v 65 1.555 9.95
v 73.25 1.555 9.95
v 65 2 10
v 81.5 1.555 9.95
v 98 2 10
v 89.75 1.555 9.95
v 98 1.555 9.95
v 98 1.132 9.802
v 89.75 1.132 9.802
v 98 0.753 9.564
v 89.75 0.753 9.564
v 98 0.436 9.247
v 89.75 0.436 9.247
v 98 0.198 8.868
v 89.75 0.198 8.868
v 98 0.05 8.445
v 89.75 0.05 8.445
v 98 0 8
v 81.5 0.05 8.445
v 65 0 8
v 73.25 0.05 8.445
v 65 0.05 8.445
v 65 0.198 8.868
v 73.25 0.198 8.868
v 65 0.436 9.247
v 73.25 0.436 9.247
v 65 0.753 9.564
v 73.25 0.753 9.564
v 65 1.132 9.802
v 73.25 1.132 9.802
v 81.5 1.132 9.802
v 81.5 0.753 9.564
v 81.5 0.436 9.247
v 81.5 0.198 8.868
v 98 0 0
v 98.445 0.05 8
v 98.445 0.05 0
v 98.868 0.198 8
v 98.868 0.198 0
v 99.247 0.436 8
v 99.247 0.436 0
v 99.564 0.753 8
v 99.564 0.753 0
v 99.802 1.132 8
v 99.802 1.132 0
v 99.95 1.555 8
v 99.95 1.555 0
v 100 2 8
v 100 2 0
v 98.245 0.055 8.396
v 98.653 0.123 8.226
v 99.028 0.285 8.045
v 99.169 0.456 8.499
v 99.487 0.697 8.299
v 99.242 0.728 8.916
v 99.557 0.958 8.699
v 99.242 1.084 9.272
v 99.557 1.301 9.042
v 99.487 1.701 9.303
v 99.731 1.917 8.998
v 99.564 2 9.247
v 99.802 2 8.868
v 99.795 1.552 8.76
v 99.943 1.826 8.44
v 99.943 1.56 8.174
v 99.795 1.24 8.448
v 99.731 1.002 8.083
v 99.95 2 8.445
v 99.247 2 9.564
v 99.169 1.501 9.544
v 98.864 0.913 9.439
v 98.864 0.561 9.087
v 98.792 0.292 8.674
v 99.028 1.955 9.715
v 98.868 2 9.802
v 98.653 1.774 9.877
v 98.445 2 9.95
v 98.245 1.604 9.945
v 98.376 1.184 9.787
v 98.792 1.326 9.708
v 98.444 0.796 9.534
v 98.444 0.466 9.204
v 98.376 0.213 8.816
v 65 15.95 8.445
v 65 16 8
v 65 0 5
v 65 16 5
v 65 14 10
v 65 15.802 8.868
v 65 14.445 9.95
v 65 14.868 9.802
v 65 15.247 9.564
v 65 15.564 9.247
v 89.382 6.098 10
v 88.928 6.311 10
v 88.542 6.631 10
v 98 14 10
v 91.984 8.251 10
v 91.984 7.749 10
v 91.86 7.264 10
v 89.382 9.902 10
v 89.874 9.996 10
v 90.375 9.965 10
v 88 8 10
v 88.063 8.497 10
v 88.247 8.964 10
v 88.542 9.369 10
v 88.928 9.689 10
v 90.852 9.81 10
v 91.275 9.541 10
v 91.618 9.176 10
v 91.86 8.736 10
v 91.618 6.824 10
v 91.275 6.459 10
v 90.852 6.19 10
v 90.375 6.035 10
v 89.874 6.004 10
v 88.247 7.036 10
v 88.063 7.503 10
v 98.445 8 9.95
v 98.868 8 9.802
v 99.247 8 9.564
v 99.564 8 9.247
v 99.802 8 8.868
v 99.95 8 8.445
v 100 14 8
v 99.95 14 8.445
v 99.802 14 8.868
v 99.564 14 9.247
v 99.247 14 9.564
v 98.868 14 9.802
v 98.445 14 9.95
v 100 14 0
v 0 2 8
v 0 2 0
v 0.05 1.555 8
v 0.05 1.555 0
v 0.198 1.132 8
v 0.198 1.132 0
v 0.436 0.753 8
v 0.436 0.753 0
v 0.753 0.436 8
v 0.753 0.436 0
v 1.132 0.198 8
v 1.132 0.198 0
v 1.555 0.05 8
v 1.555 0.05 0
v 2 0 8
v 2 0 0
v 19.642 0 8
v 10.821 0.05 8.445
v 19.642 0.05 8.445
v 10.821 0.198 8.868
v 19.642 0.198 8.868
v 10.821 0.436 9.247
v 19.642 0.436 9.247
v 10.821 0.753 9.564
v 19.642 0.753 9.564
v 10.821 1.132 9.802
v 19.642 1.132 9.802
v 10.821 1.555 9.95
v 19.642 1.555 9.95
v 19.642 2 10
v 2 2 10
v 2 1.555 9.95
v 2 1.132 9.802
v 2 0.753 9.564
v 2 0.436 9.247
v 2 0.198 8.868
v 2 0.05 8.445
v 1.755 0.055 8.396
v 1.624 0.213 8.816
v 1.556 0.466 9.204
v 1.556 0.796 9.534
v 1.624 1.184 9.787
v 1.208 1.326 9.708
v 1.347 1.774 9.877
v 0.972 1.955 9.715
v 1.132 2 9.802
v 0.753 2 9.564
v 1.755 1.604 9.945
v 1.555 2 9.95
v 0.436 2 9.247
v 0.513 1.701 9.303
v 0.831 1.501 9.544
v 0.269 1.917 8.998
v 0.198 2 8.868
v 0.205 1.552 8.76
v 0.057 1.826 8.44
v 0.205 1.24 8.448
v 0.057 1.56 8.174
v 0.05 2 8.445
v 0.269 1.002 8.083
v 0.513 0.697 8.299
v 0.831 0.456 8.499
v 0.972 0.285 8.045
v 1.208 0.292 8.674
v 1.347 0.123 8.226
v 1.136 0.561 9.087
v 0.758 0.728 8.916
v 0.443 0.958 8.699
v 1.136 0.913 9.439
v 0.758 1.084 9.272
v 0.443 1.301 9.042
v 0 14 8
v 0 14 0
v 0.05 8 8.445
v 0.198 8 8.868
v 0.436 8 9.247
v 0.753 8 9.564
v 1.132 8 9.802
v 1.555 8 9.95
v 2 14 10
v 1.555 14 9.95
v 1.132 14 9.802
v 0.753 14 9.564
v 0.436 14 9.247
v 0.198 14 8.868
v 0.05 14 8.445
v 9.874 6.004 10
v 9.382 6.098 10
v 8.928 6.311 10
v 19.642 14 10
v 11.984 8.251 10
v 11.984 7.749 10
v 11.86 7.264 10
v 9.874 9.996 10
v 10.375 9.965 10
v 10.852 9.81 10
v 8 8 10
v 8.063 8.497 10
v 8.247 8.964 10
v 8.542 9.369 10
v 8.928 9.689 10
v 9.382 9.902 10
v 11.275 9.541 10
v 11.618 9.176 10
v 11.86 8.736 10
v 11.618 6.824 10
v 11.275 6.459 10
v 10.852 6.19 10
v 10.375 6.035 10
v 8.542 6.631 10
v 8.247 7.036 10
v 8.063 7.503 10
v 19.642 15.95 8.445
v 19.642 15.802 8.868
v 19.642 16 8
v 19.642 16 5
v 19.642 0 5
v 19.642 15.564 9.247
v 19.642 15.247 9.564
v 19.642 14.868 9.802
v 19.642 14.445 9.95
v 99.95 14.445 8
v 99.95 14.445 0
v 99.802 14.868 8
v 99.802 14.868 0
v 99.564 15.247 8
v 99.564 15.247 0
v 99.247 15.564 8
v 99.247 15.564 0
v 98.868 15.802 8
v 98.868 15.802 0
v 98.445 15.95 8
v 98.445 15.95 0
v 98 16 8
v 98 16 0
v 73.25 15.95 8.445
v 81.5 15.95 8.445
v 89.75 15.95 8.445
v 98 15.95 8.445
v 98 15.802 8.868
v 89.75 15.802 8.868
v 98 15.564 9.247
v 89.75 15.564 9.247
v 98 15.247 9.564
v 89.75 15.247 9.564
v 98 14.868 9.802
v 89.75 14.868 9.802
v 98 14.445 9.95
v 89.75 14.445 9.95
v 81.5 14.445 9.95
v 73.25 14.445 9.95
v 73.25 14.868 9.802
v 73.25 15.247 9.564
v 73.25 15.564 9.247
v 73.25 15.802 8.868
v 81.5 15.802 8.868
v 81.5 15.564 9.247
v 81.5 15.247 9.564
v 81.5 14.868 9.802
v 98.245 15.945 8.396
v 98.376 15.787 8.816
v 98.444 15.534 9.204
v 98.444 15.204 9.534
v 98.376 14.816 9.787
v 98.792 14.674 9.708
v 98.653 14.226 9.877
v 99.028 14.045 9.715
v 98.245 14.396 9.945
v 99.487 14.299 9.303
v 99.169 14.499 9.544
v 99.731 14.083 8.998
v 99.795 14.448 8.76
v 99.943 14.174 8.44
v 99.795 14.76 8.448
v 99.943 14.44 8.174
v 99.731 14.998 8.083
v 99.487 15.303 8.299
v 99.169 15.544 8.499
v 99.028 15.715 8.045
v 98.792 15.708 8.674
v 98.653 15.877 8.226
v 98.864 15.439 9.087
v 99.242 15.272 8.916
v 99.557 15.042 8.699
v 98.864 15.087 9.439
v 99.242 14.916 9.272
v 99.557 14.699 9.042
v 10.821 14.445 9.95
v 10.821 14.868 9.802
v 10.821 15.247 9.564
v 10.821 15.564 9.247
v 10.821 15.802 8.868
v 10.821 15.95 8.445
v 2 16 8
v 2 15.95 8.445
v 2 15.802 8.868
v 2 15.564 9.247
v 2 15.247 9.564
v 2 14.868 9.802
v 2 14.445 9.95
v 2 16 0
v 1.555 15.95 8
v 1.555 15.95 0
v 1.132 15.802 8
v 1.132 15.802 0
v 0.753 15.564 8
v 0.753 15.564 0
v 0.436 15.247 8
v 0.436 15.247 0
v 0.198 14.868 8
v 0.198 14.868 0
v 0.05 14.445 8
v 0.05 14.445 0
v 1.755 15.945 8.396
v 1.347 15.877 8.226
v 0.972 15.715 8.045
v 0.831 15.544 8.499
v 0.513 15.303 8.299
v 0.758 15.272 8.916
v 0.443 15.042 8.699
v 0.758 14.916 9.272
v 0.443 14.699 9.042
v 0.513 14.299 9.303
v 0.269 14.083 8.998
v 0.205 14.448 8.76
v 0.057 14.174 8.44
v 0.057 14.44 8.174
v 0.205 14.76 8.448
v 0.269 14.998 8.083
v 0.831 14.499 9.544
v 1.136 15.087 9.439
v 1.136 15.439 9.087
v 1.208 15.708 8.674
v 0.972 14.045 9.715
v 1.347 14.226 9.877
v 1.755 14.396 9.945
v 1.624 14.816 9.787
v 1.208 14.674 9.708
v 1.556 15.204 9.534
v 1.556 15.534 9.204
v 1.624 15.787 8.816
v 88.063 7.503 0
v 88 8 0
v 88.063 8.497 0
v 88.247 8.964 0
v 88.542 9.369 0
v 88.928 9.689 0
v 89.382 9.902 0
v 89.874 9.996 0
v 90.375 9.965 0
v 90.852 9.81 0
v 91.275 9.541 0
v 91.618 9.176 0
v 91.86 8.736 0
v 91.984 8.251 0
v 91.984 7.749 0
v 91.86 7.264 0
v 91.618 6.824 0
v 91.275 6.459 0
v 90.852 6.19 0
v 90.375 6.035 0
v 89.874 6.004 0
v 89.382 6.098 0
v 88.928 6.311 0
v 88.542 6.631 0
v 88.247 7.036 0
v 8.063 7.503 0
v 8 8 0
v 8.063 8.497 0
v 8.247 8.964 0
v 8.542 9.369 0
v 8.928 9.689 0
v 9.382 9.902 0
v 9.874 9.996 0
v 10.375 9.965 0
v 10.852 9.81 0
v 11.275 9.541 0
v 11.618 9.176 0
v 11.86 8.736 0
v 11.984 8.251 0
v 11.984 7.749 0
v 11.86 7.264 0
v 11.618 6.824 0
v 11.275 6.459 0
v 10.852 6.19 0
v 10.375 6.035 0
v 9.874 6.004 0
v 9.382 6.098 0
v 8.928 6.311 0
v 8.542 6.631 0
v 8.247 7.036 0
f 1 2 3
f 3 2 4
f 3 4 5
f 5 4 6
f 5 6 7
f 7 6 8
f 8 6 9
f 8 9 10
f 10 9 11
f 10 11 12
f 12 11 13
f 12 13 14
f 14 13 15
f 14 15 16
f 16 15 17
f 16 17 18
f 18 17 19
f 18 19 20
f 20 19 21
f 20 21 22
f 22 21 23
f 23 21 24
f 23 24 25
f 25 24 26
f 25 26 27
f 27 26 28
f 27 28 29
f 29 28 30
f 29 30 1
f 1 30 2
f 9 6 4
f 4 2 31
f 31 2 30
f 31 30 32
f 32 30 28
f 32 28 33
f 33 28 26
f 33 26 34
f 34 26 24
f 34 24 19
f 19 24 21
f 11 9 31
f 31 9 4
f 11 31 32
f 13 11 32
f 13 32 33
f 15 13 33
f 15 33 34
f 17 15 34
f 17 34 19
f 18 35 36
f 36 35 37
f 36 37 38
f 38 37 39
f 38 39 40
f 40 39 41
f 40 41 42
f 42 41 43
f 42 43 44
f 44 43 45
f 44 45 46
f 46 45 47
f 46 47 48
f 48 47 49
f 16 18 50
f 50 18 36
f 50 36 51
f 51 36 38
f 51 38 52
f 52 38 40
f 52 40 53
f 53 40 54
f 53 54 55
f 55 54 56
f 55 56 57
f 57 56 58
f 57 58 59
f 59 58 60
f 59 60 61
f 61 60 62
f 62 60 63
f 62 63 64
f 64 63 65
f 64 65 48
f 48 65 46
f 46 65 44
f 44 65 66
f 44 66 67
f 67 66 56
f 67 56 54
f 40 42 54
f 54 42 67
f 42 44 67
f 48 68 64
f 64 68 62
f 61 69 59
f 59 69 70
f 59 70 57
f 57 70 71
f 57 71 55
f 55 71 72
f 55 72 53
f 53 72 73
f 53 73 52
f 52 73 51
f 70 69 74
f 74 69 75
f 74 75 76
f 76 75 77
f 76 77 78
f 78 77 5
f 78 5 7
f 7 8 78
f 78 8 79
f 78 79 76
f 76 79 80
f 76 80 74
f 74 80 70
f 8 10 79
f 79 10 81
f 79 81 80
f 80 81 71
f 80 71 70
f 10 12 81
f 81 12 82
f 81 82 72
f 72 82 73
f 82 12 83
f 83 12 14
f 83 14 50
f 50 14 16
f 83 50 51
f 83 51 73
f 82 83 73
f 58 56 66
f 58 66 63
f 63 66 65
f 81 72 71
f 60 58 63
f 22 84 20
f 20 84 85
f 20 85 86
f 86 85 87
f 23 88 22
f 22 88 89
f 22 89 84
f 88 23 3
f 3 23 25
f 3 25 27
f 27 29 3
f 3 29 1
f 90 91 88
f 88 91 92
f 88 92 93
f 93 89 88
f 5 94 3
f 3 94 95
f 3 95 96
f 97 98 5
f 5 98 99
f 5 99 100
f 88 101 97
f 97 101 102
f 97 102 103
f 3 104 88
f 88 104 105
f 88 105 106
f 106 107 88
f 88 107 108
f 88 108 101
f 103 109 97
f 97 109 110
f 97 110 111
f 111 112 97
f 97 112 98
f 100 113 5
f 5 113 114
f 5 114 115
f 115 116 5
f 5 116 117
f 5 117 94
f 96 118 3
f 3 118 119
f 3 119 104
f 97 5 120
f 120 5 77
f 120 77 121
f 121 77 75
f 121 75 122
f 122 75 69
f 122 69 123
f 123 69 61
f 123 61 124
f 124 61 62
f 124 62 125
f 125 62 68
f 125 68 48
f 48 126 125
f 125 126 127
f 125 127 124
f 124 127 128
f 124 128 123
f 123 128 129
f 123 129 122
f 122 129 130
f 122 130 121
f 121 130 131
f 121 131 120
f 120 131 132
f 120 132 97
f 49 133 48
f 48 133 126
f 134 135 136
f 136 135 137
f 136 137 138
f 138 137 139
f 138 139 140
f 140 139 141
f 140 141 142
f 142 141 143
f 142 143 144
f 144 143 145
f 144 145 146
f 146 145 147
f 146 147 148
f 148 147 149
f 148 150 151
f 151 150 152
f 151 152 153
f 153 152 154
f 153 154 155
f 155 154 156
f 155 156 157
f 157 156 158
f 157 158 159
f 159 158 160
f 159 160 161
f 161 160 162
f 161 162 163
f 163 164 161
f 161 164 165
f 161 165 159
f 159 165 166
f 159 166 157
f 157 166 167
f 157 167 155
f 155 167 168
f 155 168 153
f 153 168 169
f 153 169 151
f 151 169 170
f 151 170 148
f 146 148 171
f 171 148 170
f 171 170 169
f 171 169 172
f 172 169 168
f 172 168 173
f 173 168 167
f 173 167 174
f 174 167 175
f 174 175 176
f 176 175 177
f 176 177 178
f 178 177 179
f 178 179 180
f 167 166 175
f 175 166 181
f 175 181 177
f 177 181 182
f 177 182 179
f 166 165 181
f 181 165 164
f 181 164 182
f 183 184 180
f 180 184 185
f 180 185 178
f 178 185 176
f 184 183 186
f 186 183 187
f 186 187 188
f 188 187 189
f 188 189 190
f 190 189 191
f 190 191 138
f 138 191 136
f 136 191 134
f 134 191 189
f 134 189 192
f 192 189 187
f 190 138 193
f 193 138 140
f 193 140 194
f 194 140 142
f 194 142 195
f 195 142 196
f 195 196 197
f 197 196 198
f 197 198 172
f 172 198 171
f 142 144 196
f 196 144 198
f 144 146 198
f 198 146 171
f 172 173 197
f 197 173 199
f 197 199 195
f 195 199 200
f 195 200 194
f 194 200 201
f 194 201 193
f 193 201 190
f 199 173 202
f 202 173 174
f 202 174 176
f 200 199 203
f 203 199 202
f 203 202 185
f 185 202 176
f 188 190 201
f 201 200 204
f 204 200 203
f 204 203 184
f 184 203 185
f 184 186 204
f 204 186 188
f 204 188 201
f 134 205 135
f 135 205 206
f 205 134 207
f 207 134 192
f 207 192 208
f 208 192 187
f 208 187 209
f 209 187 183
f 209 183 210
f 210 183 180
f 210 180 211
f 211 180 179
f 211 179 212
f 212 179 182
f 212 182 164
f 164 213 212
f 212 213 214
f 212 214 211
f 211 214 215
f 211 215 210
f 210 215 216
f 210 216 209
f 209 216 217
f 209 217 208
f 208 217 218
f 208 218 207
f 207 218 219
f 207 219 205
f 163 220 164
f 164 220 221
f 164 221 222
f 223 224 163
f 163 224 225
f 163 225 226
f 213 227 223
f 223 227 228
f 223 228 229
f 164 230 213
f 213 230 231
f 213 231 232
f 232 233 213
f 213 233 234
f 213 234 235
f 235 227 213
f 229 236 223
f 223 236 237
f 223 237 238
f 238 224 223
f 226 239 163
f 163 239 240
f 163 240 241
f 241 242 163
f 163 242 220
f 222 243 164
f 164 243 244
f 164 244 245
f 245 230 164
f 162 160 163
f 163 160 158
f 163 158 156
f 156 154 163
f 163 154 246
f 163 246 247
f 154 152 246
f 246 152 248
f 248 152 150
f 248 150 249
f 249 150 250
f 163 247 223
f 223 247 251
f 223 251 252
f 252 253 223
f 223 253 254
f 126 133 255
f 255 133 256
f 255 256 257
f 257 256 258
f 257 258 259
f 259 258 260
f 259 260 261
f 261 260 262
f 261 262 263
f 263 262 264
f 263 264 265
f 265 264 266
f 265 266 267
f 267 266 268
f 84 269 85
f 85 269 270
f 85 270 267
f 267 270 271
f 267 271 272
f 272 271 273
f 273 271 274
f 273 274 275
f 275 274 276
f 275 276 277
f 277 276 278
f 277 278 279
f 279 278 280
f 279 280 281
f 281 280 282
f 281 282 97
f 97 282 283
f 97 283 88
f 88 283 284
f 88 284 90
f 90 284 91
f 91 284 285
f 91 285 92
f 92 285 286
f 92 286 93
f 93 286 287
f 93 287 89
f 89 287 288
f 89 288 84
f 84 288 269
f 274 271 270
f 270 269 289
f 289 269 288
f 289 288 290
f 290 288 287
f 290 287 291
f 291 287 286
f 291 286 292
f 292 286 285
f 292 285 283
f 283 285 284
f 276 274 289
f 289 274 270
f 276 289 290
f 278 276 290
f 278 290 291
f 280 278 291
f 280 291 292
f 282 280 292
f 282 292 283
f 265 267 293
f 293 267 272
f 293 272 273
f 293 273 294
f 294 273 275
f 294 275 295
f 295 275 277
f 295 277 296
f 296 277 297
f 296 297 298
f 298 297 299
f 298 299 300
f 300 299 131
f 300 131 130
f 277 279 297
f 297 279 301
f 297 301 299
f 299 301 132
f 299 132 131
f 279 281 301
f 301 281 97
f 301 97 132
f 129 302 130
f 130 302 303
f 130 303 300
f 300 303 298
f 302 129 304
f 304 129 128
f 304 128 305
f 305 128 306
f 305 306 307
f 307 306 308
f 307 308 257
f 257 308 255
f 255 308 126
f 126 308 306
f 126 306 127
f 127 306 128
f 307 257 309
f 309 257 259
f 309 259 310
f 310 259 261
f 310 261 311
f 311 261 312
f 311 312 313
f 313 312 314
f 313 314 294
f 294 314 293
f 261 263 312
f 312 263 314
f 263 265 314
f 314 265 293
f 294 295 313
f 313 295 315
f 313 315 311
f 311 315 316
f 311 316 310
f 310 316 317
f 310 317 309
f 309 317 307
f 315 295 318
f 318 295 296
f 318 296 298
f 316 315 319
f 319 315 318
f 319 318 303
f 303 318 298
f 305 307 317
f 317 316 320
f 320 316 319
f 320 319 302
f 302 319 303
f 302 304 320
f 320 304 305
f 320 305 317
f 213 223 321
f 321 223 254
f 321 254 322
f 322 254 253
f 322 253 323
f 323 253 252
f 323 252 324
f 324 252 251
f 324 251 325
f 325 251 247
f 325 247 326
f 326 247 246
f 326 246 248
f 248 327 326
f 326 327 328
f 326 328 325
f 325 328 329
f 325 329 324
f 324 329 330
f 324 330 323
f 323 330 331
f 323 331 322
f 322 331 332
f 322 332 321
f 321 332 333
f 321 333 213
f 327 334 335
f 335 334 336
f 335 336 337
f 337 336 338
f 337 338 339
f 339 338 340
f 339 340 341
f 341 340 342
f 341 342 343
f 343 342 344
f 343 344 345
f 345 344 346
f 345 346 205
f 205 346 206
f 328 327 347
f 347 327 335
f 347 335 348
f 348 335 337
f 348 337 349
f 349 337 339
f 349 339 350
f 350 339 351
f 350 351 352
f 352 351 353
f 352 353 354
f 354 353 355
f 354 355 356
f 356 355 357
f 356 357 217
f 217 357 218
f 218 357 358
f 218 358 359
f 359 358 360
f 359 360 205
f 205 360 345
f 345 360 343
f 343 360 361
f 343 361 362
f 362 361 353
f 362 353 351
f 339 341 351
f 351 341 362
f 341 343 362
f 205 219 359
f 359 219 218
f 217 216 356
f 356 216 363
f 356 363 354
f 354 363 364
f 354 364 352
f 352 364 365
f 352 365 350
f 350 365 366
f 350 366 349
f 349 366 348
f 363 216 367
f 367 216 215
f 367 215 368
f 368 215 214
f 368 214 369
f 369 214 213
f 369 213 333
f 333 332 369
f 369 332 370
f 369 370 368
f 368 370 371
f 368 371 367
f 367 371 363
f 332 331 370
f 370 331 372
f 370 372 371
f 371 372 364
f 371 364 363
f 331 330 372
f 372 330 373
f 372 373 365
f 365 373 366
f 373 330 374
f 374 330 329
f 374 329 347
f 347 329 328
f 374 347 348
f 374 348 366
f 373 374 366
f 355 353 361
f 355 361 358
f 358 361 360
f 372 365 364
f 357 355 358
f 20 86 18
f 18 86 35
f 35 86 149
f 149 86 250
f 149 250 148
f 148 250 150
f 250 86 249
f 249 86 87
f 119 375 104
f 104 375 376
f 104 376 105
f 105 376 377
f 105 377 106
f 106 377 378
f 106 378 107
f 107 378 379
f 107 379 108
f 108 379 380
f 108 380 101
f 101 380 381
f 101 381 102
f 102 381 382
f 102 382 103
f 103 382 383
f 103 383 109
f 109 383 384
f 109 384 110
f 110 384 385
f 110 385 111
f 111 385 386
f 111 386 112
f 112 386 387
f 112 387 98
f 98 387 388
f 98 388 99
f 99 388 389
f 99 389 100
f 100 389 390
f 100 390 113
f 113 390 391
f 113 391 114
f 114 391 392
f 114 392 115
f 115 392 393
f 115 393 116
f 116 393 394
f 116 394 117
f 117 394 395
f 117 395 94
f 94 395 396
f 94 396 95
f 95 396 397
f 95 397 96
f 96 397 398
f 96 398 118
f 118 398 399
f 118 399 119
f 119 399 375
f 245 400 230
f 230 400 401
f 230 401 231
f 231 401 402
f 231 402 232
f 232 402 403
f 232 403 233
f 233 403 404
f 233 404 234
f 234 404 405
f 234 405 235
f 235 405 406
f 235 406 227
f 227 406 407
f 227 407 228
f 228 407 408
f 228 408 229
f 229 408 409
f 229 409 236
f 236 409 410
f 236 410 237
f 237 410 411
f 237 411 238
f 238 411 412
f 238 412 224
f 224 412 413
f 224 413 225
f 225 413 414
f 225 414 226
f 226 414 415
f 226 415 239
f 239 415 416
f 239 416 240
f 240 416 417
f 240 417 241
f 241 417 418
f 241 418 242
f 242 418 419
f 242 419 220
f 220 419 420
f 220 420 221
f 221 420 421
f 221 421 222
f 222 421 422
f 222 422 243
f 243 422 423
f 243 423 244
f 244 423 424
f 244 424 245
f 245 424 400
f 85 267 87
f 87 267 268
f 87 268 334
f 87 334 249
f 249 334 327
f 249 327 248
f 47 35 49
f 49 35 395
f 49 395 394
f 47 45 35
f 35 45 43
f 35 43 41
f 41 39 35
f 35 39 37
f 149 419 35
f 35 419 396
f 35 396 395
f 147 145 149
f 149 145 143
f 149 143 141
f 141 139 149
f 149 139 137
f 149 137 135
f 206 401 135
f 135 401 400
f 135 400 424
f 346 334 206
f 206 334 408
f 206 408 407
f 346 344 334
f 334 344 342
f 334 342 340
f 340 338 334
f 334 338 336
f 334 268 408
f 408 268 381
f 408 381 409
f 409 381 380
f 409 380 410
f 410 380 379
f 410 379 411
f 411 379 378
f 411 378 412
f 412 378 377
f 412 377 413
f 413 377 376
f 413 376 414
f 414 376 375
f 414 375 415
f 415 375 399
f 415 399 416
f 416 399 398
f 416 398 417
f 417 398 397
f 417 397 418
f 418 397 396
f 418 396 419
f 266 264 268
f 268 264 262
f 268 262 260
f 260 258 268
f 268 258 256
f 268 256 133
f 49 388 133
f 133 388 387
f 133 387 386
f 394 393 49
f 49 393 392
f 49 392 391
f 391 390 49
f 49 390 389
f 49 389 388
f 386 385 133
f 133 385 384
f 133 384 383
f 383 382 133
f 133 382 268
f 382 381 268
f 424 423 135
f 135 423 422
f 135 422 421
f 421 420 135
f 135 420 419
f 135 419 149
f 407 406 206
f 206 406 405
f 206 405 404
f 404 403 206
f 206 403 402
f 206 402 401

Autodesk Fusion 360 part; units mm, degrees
sketch "Sketch1" plane through (0, 0, 0) normal (0, 0, 1) x (1, 0, 0)
  line L0 (0, 0) -> (100, 0)
  line L1 (100, 0) -> (100, 16)
  line L2 (100, 16) -> (0, 16)
  line L3 (0, 16) -> (0, 0)
  line L4 (0, 8) -> (100, 8) construction
  line L5 (50, 16) -> (50, 0) construction
  circle A0 centre (10, 8) radius 2
  circle A1 centre (90, 8) radius 2
  line L6 (19.6419, 16) -> (19.6419, 0)
  line L7 (65, 16) -> (65, 0)
  dimension "d1" = 16
  dimension "d2" = 4
  dimension "d3" = 4
  dimension "d4" = 40
  dimension "d5" = 40
  dimension "d22" = 35
extrude "Extrude1" add sketch "Sketch1" along normal blind 10 contours L0 L2 L3 L6 | L0 L1 L2 L7 makes body 1 at (2.6667, 8, 0) makes body 2 at (72.6667, 8, 0)
extrude "Extrude2" add sketch "Sketch1" along normal blind 5 contours L0 L2 L6 L7 bodies 1 2
fillet "Fillet1" radius 2 1 edges at (0, 8, 10) on bodies 1
fillet "Fillet2" radius 2 1 edges at (100, 8, 10) on bodies 1
fillet "Fillet3" radius 2 3 edges at (0, 16, 4) (0.5858, 16, 9.4142) (10.821, 16, 10) on bodies 1
fillet "Fillet4" radius 2 3 edges at (100, 16, 4) (99.4142, 16, 9.4142) (81.5, 16, 10) on bodies 1
fillet "Fillet5" radius 2 3 edges at (0, 0, 4) (0.5858, 0, 9.4142) (10.821, 0, 10) on bodies 1
fillet "Fillet6" radius 2 3 edges at (81.5, 0, 10) (99.4142, 0, 9.4142) (100, 0, 4) on bodies 1
